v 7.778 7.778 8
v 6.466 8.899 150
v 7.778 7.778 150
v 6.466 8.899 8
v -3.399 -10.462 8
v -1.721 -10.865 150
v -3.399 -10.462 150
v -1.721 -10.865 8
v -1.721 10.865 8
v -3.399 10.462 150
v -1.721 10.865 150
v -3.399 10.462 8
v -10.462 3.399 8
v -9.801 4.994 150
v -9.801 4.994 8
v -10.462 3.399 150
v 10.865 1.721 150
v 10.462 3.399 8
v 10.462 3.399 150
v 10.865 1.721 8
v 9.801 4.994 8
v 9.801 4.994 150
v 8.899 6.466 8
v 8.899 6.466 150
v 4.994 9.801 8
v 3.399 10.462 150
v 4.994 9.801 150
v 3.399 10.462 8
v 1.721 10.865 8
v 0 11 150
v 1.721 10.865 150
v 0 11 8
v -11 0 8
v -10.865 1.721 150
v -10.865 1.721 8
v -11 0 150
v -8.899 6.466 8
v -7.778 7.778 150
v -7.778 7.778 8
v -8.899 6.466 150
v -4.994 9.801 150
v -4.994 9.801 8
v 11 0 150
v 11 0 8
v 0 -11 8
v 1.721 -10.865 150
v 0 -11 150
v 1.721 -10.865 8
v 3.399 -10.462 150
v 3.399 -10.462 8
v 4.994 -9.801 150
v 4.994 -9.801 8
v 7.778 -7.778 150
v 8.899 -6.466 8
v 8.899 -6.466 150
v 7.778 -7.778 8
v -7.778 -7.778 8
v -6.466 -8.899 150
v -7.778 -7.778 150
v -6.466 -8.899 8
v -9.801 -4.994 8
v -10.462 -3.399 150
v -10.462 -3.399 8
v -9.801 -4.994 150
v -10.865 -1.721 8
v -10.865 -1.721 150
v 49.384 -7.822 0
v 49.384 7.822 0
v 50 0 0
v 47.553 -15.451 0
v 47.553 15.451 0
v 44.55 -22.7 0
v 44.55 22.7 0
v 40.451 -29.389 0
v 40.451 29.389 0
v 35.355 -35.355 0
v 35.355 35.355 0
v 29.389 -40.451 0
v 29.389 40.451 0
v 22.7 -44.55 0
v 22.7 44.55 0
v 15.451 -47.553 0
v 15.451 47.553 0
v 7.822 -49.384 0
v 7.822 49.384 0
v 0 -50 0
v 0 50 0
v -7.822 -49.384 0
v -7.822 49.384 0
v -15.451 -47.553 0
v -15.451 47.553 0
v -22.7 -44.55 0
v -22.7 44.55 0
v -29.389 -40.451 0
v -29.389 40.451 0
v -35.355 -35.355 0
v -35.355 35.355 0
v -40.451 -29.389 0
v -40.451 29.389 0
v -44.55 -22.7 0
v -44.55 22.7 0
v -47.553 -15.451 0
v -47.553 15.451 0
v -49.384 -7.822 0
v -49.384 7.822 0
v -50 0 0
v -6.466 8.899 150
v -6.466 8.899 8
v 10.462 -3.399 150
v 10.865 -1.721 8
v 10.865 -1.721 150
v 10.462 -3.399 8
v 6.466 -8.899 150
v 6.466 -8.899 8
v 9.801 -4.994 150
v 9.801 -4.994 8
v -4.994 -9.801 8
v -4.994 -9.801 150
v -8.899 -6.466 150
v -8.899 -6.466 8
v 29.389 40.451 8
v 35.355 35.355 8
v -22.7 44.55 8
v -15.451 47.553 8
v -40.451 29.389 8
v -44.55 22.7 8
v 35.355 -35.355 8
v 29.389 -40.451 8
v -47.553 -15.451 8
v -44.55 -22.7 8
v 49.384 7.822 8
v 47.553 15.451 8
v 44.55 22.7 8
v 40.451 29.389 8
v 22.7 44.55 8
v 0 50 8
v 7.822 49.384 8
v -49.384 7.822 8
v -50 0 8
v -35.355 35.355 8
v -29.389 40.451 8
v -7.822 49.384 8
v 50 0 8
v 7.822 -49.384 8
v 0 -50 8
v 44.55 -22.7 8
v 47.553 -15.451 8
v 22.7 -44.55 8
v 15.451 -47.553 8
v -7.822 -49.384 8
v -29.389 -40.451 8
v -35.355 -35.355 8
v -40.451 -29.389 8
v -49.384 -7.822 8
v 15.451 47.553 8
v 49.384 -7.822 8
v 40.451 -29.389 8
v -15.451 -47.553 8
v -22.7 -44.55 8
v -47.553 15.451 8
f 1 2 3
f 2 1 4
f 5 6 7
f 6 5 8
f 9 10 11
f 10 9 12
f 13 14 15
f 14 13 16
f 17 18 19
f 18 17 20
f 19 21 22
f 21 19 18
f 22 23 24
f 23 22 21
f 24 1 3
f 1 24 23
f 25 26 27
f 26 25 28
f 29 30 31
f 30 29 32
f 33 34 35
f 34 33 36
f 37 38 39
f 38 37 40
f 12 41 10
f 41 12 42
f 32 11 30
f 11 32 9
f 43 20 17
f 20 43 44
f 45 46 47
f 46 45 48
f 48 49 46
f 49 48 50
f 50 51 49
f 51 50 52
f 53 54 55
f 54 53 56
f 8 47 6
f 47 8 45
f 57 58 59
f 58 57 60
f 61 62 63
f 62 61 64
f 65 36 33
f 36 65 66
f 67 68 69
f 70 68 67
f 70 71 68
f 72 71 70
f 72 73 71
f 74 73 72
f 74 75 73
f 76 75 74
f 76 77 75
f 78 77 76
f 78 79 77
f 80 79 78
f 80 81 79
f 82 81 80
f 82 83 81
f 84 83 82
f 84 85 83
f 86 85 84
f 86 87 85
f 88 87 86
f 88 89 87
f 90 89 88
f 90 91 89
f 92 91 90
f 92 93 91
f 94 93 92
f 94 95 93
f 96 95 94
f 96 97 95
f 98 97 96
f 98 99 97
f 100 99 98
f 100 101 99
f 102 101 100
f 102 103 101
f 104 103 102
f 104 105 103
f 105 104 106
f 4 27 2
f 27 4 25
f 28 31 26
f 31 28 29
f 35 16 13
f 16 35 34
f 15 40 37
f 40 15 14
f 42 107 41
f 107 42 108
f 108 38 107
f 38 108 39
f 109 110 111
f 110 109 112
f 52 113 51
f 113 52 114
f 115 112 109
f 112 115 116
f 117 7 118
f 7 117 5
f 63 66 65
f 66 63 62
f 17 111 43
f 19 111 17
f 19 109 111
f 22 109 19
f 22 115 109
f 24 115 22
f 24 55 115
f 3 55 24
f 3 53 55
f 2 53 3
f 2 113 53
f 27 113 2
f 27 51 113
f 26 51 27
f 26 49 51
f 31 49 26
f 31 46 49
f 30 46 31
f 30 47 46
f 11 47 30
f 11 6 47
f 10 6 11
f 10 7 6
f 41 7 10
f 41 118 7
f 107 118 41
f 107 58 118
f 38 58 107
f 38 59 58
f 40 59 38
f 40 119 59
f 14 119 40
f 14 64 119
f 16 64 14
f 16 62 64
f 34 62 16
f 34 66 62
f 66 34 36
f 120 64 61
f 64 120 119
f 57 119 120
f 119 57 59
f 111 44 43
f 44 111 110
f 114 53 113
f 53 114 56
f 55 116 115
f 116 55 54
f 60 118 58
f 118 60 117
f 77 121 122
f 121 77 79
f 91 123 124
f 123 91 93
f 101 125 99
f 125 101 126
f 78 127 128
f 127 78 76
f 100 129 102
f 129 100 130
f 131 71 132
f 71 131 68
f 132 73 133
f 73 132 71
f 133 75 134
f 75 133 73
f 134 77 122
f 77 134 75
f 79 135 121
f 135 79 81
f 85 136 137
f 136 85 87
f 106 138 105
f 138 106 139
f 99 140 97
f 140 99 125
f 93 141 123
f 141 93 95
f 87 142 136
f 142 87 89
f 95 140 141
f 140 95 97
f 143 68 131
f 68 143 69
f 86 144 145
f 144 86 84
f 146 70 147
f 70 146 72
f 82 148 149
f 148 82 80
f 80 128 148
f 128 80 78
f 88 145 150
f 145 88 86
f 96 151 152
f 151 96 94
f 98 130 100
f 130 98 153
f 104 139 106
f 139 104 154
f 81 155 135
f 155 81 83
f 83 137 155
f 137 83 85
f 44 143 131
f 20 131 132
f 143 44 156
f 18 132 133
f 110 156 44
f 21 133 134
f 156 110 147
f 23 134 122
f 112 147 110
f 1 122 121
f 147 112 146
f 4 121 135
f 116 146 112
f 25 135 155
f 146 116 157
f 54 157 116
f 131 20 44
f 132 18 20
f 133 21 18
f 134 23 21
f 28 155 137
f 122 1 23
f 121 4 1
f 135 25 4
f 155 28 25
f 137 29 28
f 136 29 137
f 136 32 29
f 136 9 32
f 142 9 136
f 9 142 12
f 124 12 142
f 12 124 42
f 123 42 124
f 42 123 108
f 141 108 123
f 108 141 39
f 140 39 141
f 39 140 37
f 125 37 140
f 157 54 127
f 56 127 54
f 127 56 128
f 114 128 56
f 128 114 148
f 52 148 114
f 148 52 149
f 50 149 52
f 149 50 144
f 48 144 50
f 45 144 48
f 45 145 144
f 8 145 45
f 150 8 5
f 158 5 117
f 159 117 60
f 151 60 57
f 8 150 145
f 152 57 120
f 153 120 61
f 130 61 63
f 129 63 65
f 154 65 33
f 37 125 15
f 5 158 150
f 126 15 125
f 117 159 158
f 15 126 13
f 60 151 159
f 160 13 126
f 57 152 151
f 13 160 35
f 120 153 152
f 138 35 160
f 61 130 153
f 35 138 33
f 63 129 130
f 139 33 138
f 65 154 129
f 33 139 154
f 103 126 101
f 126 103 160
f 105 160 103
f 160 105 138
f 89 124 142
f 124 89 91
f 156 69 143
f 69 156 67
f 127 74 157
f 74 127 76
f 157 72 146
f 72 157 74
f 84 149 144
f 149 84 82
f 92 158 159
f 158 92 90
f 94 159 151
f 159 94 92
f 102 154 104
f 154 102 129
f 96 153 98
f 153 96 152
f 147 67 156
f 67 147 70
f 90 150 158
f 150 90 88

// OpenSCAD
// units in mm
// Tape holder for Emil
$fn = 40;

post_diameter_nominal = 22;
post_height = 150;

platexy = 50;
plate_diameter = 100;
plate_t = 8;

module body()
{
    union()
    {
        cylinder(d=post_diameter_nominal, h=post_height);
        cylinder(d=plate_diameter, h=plate_t);
    }
}

body();
